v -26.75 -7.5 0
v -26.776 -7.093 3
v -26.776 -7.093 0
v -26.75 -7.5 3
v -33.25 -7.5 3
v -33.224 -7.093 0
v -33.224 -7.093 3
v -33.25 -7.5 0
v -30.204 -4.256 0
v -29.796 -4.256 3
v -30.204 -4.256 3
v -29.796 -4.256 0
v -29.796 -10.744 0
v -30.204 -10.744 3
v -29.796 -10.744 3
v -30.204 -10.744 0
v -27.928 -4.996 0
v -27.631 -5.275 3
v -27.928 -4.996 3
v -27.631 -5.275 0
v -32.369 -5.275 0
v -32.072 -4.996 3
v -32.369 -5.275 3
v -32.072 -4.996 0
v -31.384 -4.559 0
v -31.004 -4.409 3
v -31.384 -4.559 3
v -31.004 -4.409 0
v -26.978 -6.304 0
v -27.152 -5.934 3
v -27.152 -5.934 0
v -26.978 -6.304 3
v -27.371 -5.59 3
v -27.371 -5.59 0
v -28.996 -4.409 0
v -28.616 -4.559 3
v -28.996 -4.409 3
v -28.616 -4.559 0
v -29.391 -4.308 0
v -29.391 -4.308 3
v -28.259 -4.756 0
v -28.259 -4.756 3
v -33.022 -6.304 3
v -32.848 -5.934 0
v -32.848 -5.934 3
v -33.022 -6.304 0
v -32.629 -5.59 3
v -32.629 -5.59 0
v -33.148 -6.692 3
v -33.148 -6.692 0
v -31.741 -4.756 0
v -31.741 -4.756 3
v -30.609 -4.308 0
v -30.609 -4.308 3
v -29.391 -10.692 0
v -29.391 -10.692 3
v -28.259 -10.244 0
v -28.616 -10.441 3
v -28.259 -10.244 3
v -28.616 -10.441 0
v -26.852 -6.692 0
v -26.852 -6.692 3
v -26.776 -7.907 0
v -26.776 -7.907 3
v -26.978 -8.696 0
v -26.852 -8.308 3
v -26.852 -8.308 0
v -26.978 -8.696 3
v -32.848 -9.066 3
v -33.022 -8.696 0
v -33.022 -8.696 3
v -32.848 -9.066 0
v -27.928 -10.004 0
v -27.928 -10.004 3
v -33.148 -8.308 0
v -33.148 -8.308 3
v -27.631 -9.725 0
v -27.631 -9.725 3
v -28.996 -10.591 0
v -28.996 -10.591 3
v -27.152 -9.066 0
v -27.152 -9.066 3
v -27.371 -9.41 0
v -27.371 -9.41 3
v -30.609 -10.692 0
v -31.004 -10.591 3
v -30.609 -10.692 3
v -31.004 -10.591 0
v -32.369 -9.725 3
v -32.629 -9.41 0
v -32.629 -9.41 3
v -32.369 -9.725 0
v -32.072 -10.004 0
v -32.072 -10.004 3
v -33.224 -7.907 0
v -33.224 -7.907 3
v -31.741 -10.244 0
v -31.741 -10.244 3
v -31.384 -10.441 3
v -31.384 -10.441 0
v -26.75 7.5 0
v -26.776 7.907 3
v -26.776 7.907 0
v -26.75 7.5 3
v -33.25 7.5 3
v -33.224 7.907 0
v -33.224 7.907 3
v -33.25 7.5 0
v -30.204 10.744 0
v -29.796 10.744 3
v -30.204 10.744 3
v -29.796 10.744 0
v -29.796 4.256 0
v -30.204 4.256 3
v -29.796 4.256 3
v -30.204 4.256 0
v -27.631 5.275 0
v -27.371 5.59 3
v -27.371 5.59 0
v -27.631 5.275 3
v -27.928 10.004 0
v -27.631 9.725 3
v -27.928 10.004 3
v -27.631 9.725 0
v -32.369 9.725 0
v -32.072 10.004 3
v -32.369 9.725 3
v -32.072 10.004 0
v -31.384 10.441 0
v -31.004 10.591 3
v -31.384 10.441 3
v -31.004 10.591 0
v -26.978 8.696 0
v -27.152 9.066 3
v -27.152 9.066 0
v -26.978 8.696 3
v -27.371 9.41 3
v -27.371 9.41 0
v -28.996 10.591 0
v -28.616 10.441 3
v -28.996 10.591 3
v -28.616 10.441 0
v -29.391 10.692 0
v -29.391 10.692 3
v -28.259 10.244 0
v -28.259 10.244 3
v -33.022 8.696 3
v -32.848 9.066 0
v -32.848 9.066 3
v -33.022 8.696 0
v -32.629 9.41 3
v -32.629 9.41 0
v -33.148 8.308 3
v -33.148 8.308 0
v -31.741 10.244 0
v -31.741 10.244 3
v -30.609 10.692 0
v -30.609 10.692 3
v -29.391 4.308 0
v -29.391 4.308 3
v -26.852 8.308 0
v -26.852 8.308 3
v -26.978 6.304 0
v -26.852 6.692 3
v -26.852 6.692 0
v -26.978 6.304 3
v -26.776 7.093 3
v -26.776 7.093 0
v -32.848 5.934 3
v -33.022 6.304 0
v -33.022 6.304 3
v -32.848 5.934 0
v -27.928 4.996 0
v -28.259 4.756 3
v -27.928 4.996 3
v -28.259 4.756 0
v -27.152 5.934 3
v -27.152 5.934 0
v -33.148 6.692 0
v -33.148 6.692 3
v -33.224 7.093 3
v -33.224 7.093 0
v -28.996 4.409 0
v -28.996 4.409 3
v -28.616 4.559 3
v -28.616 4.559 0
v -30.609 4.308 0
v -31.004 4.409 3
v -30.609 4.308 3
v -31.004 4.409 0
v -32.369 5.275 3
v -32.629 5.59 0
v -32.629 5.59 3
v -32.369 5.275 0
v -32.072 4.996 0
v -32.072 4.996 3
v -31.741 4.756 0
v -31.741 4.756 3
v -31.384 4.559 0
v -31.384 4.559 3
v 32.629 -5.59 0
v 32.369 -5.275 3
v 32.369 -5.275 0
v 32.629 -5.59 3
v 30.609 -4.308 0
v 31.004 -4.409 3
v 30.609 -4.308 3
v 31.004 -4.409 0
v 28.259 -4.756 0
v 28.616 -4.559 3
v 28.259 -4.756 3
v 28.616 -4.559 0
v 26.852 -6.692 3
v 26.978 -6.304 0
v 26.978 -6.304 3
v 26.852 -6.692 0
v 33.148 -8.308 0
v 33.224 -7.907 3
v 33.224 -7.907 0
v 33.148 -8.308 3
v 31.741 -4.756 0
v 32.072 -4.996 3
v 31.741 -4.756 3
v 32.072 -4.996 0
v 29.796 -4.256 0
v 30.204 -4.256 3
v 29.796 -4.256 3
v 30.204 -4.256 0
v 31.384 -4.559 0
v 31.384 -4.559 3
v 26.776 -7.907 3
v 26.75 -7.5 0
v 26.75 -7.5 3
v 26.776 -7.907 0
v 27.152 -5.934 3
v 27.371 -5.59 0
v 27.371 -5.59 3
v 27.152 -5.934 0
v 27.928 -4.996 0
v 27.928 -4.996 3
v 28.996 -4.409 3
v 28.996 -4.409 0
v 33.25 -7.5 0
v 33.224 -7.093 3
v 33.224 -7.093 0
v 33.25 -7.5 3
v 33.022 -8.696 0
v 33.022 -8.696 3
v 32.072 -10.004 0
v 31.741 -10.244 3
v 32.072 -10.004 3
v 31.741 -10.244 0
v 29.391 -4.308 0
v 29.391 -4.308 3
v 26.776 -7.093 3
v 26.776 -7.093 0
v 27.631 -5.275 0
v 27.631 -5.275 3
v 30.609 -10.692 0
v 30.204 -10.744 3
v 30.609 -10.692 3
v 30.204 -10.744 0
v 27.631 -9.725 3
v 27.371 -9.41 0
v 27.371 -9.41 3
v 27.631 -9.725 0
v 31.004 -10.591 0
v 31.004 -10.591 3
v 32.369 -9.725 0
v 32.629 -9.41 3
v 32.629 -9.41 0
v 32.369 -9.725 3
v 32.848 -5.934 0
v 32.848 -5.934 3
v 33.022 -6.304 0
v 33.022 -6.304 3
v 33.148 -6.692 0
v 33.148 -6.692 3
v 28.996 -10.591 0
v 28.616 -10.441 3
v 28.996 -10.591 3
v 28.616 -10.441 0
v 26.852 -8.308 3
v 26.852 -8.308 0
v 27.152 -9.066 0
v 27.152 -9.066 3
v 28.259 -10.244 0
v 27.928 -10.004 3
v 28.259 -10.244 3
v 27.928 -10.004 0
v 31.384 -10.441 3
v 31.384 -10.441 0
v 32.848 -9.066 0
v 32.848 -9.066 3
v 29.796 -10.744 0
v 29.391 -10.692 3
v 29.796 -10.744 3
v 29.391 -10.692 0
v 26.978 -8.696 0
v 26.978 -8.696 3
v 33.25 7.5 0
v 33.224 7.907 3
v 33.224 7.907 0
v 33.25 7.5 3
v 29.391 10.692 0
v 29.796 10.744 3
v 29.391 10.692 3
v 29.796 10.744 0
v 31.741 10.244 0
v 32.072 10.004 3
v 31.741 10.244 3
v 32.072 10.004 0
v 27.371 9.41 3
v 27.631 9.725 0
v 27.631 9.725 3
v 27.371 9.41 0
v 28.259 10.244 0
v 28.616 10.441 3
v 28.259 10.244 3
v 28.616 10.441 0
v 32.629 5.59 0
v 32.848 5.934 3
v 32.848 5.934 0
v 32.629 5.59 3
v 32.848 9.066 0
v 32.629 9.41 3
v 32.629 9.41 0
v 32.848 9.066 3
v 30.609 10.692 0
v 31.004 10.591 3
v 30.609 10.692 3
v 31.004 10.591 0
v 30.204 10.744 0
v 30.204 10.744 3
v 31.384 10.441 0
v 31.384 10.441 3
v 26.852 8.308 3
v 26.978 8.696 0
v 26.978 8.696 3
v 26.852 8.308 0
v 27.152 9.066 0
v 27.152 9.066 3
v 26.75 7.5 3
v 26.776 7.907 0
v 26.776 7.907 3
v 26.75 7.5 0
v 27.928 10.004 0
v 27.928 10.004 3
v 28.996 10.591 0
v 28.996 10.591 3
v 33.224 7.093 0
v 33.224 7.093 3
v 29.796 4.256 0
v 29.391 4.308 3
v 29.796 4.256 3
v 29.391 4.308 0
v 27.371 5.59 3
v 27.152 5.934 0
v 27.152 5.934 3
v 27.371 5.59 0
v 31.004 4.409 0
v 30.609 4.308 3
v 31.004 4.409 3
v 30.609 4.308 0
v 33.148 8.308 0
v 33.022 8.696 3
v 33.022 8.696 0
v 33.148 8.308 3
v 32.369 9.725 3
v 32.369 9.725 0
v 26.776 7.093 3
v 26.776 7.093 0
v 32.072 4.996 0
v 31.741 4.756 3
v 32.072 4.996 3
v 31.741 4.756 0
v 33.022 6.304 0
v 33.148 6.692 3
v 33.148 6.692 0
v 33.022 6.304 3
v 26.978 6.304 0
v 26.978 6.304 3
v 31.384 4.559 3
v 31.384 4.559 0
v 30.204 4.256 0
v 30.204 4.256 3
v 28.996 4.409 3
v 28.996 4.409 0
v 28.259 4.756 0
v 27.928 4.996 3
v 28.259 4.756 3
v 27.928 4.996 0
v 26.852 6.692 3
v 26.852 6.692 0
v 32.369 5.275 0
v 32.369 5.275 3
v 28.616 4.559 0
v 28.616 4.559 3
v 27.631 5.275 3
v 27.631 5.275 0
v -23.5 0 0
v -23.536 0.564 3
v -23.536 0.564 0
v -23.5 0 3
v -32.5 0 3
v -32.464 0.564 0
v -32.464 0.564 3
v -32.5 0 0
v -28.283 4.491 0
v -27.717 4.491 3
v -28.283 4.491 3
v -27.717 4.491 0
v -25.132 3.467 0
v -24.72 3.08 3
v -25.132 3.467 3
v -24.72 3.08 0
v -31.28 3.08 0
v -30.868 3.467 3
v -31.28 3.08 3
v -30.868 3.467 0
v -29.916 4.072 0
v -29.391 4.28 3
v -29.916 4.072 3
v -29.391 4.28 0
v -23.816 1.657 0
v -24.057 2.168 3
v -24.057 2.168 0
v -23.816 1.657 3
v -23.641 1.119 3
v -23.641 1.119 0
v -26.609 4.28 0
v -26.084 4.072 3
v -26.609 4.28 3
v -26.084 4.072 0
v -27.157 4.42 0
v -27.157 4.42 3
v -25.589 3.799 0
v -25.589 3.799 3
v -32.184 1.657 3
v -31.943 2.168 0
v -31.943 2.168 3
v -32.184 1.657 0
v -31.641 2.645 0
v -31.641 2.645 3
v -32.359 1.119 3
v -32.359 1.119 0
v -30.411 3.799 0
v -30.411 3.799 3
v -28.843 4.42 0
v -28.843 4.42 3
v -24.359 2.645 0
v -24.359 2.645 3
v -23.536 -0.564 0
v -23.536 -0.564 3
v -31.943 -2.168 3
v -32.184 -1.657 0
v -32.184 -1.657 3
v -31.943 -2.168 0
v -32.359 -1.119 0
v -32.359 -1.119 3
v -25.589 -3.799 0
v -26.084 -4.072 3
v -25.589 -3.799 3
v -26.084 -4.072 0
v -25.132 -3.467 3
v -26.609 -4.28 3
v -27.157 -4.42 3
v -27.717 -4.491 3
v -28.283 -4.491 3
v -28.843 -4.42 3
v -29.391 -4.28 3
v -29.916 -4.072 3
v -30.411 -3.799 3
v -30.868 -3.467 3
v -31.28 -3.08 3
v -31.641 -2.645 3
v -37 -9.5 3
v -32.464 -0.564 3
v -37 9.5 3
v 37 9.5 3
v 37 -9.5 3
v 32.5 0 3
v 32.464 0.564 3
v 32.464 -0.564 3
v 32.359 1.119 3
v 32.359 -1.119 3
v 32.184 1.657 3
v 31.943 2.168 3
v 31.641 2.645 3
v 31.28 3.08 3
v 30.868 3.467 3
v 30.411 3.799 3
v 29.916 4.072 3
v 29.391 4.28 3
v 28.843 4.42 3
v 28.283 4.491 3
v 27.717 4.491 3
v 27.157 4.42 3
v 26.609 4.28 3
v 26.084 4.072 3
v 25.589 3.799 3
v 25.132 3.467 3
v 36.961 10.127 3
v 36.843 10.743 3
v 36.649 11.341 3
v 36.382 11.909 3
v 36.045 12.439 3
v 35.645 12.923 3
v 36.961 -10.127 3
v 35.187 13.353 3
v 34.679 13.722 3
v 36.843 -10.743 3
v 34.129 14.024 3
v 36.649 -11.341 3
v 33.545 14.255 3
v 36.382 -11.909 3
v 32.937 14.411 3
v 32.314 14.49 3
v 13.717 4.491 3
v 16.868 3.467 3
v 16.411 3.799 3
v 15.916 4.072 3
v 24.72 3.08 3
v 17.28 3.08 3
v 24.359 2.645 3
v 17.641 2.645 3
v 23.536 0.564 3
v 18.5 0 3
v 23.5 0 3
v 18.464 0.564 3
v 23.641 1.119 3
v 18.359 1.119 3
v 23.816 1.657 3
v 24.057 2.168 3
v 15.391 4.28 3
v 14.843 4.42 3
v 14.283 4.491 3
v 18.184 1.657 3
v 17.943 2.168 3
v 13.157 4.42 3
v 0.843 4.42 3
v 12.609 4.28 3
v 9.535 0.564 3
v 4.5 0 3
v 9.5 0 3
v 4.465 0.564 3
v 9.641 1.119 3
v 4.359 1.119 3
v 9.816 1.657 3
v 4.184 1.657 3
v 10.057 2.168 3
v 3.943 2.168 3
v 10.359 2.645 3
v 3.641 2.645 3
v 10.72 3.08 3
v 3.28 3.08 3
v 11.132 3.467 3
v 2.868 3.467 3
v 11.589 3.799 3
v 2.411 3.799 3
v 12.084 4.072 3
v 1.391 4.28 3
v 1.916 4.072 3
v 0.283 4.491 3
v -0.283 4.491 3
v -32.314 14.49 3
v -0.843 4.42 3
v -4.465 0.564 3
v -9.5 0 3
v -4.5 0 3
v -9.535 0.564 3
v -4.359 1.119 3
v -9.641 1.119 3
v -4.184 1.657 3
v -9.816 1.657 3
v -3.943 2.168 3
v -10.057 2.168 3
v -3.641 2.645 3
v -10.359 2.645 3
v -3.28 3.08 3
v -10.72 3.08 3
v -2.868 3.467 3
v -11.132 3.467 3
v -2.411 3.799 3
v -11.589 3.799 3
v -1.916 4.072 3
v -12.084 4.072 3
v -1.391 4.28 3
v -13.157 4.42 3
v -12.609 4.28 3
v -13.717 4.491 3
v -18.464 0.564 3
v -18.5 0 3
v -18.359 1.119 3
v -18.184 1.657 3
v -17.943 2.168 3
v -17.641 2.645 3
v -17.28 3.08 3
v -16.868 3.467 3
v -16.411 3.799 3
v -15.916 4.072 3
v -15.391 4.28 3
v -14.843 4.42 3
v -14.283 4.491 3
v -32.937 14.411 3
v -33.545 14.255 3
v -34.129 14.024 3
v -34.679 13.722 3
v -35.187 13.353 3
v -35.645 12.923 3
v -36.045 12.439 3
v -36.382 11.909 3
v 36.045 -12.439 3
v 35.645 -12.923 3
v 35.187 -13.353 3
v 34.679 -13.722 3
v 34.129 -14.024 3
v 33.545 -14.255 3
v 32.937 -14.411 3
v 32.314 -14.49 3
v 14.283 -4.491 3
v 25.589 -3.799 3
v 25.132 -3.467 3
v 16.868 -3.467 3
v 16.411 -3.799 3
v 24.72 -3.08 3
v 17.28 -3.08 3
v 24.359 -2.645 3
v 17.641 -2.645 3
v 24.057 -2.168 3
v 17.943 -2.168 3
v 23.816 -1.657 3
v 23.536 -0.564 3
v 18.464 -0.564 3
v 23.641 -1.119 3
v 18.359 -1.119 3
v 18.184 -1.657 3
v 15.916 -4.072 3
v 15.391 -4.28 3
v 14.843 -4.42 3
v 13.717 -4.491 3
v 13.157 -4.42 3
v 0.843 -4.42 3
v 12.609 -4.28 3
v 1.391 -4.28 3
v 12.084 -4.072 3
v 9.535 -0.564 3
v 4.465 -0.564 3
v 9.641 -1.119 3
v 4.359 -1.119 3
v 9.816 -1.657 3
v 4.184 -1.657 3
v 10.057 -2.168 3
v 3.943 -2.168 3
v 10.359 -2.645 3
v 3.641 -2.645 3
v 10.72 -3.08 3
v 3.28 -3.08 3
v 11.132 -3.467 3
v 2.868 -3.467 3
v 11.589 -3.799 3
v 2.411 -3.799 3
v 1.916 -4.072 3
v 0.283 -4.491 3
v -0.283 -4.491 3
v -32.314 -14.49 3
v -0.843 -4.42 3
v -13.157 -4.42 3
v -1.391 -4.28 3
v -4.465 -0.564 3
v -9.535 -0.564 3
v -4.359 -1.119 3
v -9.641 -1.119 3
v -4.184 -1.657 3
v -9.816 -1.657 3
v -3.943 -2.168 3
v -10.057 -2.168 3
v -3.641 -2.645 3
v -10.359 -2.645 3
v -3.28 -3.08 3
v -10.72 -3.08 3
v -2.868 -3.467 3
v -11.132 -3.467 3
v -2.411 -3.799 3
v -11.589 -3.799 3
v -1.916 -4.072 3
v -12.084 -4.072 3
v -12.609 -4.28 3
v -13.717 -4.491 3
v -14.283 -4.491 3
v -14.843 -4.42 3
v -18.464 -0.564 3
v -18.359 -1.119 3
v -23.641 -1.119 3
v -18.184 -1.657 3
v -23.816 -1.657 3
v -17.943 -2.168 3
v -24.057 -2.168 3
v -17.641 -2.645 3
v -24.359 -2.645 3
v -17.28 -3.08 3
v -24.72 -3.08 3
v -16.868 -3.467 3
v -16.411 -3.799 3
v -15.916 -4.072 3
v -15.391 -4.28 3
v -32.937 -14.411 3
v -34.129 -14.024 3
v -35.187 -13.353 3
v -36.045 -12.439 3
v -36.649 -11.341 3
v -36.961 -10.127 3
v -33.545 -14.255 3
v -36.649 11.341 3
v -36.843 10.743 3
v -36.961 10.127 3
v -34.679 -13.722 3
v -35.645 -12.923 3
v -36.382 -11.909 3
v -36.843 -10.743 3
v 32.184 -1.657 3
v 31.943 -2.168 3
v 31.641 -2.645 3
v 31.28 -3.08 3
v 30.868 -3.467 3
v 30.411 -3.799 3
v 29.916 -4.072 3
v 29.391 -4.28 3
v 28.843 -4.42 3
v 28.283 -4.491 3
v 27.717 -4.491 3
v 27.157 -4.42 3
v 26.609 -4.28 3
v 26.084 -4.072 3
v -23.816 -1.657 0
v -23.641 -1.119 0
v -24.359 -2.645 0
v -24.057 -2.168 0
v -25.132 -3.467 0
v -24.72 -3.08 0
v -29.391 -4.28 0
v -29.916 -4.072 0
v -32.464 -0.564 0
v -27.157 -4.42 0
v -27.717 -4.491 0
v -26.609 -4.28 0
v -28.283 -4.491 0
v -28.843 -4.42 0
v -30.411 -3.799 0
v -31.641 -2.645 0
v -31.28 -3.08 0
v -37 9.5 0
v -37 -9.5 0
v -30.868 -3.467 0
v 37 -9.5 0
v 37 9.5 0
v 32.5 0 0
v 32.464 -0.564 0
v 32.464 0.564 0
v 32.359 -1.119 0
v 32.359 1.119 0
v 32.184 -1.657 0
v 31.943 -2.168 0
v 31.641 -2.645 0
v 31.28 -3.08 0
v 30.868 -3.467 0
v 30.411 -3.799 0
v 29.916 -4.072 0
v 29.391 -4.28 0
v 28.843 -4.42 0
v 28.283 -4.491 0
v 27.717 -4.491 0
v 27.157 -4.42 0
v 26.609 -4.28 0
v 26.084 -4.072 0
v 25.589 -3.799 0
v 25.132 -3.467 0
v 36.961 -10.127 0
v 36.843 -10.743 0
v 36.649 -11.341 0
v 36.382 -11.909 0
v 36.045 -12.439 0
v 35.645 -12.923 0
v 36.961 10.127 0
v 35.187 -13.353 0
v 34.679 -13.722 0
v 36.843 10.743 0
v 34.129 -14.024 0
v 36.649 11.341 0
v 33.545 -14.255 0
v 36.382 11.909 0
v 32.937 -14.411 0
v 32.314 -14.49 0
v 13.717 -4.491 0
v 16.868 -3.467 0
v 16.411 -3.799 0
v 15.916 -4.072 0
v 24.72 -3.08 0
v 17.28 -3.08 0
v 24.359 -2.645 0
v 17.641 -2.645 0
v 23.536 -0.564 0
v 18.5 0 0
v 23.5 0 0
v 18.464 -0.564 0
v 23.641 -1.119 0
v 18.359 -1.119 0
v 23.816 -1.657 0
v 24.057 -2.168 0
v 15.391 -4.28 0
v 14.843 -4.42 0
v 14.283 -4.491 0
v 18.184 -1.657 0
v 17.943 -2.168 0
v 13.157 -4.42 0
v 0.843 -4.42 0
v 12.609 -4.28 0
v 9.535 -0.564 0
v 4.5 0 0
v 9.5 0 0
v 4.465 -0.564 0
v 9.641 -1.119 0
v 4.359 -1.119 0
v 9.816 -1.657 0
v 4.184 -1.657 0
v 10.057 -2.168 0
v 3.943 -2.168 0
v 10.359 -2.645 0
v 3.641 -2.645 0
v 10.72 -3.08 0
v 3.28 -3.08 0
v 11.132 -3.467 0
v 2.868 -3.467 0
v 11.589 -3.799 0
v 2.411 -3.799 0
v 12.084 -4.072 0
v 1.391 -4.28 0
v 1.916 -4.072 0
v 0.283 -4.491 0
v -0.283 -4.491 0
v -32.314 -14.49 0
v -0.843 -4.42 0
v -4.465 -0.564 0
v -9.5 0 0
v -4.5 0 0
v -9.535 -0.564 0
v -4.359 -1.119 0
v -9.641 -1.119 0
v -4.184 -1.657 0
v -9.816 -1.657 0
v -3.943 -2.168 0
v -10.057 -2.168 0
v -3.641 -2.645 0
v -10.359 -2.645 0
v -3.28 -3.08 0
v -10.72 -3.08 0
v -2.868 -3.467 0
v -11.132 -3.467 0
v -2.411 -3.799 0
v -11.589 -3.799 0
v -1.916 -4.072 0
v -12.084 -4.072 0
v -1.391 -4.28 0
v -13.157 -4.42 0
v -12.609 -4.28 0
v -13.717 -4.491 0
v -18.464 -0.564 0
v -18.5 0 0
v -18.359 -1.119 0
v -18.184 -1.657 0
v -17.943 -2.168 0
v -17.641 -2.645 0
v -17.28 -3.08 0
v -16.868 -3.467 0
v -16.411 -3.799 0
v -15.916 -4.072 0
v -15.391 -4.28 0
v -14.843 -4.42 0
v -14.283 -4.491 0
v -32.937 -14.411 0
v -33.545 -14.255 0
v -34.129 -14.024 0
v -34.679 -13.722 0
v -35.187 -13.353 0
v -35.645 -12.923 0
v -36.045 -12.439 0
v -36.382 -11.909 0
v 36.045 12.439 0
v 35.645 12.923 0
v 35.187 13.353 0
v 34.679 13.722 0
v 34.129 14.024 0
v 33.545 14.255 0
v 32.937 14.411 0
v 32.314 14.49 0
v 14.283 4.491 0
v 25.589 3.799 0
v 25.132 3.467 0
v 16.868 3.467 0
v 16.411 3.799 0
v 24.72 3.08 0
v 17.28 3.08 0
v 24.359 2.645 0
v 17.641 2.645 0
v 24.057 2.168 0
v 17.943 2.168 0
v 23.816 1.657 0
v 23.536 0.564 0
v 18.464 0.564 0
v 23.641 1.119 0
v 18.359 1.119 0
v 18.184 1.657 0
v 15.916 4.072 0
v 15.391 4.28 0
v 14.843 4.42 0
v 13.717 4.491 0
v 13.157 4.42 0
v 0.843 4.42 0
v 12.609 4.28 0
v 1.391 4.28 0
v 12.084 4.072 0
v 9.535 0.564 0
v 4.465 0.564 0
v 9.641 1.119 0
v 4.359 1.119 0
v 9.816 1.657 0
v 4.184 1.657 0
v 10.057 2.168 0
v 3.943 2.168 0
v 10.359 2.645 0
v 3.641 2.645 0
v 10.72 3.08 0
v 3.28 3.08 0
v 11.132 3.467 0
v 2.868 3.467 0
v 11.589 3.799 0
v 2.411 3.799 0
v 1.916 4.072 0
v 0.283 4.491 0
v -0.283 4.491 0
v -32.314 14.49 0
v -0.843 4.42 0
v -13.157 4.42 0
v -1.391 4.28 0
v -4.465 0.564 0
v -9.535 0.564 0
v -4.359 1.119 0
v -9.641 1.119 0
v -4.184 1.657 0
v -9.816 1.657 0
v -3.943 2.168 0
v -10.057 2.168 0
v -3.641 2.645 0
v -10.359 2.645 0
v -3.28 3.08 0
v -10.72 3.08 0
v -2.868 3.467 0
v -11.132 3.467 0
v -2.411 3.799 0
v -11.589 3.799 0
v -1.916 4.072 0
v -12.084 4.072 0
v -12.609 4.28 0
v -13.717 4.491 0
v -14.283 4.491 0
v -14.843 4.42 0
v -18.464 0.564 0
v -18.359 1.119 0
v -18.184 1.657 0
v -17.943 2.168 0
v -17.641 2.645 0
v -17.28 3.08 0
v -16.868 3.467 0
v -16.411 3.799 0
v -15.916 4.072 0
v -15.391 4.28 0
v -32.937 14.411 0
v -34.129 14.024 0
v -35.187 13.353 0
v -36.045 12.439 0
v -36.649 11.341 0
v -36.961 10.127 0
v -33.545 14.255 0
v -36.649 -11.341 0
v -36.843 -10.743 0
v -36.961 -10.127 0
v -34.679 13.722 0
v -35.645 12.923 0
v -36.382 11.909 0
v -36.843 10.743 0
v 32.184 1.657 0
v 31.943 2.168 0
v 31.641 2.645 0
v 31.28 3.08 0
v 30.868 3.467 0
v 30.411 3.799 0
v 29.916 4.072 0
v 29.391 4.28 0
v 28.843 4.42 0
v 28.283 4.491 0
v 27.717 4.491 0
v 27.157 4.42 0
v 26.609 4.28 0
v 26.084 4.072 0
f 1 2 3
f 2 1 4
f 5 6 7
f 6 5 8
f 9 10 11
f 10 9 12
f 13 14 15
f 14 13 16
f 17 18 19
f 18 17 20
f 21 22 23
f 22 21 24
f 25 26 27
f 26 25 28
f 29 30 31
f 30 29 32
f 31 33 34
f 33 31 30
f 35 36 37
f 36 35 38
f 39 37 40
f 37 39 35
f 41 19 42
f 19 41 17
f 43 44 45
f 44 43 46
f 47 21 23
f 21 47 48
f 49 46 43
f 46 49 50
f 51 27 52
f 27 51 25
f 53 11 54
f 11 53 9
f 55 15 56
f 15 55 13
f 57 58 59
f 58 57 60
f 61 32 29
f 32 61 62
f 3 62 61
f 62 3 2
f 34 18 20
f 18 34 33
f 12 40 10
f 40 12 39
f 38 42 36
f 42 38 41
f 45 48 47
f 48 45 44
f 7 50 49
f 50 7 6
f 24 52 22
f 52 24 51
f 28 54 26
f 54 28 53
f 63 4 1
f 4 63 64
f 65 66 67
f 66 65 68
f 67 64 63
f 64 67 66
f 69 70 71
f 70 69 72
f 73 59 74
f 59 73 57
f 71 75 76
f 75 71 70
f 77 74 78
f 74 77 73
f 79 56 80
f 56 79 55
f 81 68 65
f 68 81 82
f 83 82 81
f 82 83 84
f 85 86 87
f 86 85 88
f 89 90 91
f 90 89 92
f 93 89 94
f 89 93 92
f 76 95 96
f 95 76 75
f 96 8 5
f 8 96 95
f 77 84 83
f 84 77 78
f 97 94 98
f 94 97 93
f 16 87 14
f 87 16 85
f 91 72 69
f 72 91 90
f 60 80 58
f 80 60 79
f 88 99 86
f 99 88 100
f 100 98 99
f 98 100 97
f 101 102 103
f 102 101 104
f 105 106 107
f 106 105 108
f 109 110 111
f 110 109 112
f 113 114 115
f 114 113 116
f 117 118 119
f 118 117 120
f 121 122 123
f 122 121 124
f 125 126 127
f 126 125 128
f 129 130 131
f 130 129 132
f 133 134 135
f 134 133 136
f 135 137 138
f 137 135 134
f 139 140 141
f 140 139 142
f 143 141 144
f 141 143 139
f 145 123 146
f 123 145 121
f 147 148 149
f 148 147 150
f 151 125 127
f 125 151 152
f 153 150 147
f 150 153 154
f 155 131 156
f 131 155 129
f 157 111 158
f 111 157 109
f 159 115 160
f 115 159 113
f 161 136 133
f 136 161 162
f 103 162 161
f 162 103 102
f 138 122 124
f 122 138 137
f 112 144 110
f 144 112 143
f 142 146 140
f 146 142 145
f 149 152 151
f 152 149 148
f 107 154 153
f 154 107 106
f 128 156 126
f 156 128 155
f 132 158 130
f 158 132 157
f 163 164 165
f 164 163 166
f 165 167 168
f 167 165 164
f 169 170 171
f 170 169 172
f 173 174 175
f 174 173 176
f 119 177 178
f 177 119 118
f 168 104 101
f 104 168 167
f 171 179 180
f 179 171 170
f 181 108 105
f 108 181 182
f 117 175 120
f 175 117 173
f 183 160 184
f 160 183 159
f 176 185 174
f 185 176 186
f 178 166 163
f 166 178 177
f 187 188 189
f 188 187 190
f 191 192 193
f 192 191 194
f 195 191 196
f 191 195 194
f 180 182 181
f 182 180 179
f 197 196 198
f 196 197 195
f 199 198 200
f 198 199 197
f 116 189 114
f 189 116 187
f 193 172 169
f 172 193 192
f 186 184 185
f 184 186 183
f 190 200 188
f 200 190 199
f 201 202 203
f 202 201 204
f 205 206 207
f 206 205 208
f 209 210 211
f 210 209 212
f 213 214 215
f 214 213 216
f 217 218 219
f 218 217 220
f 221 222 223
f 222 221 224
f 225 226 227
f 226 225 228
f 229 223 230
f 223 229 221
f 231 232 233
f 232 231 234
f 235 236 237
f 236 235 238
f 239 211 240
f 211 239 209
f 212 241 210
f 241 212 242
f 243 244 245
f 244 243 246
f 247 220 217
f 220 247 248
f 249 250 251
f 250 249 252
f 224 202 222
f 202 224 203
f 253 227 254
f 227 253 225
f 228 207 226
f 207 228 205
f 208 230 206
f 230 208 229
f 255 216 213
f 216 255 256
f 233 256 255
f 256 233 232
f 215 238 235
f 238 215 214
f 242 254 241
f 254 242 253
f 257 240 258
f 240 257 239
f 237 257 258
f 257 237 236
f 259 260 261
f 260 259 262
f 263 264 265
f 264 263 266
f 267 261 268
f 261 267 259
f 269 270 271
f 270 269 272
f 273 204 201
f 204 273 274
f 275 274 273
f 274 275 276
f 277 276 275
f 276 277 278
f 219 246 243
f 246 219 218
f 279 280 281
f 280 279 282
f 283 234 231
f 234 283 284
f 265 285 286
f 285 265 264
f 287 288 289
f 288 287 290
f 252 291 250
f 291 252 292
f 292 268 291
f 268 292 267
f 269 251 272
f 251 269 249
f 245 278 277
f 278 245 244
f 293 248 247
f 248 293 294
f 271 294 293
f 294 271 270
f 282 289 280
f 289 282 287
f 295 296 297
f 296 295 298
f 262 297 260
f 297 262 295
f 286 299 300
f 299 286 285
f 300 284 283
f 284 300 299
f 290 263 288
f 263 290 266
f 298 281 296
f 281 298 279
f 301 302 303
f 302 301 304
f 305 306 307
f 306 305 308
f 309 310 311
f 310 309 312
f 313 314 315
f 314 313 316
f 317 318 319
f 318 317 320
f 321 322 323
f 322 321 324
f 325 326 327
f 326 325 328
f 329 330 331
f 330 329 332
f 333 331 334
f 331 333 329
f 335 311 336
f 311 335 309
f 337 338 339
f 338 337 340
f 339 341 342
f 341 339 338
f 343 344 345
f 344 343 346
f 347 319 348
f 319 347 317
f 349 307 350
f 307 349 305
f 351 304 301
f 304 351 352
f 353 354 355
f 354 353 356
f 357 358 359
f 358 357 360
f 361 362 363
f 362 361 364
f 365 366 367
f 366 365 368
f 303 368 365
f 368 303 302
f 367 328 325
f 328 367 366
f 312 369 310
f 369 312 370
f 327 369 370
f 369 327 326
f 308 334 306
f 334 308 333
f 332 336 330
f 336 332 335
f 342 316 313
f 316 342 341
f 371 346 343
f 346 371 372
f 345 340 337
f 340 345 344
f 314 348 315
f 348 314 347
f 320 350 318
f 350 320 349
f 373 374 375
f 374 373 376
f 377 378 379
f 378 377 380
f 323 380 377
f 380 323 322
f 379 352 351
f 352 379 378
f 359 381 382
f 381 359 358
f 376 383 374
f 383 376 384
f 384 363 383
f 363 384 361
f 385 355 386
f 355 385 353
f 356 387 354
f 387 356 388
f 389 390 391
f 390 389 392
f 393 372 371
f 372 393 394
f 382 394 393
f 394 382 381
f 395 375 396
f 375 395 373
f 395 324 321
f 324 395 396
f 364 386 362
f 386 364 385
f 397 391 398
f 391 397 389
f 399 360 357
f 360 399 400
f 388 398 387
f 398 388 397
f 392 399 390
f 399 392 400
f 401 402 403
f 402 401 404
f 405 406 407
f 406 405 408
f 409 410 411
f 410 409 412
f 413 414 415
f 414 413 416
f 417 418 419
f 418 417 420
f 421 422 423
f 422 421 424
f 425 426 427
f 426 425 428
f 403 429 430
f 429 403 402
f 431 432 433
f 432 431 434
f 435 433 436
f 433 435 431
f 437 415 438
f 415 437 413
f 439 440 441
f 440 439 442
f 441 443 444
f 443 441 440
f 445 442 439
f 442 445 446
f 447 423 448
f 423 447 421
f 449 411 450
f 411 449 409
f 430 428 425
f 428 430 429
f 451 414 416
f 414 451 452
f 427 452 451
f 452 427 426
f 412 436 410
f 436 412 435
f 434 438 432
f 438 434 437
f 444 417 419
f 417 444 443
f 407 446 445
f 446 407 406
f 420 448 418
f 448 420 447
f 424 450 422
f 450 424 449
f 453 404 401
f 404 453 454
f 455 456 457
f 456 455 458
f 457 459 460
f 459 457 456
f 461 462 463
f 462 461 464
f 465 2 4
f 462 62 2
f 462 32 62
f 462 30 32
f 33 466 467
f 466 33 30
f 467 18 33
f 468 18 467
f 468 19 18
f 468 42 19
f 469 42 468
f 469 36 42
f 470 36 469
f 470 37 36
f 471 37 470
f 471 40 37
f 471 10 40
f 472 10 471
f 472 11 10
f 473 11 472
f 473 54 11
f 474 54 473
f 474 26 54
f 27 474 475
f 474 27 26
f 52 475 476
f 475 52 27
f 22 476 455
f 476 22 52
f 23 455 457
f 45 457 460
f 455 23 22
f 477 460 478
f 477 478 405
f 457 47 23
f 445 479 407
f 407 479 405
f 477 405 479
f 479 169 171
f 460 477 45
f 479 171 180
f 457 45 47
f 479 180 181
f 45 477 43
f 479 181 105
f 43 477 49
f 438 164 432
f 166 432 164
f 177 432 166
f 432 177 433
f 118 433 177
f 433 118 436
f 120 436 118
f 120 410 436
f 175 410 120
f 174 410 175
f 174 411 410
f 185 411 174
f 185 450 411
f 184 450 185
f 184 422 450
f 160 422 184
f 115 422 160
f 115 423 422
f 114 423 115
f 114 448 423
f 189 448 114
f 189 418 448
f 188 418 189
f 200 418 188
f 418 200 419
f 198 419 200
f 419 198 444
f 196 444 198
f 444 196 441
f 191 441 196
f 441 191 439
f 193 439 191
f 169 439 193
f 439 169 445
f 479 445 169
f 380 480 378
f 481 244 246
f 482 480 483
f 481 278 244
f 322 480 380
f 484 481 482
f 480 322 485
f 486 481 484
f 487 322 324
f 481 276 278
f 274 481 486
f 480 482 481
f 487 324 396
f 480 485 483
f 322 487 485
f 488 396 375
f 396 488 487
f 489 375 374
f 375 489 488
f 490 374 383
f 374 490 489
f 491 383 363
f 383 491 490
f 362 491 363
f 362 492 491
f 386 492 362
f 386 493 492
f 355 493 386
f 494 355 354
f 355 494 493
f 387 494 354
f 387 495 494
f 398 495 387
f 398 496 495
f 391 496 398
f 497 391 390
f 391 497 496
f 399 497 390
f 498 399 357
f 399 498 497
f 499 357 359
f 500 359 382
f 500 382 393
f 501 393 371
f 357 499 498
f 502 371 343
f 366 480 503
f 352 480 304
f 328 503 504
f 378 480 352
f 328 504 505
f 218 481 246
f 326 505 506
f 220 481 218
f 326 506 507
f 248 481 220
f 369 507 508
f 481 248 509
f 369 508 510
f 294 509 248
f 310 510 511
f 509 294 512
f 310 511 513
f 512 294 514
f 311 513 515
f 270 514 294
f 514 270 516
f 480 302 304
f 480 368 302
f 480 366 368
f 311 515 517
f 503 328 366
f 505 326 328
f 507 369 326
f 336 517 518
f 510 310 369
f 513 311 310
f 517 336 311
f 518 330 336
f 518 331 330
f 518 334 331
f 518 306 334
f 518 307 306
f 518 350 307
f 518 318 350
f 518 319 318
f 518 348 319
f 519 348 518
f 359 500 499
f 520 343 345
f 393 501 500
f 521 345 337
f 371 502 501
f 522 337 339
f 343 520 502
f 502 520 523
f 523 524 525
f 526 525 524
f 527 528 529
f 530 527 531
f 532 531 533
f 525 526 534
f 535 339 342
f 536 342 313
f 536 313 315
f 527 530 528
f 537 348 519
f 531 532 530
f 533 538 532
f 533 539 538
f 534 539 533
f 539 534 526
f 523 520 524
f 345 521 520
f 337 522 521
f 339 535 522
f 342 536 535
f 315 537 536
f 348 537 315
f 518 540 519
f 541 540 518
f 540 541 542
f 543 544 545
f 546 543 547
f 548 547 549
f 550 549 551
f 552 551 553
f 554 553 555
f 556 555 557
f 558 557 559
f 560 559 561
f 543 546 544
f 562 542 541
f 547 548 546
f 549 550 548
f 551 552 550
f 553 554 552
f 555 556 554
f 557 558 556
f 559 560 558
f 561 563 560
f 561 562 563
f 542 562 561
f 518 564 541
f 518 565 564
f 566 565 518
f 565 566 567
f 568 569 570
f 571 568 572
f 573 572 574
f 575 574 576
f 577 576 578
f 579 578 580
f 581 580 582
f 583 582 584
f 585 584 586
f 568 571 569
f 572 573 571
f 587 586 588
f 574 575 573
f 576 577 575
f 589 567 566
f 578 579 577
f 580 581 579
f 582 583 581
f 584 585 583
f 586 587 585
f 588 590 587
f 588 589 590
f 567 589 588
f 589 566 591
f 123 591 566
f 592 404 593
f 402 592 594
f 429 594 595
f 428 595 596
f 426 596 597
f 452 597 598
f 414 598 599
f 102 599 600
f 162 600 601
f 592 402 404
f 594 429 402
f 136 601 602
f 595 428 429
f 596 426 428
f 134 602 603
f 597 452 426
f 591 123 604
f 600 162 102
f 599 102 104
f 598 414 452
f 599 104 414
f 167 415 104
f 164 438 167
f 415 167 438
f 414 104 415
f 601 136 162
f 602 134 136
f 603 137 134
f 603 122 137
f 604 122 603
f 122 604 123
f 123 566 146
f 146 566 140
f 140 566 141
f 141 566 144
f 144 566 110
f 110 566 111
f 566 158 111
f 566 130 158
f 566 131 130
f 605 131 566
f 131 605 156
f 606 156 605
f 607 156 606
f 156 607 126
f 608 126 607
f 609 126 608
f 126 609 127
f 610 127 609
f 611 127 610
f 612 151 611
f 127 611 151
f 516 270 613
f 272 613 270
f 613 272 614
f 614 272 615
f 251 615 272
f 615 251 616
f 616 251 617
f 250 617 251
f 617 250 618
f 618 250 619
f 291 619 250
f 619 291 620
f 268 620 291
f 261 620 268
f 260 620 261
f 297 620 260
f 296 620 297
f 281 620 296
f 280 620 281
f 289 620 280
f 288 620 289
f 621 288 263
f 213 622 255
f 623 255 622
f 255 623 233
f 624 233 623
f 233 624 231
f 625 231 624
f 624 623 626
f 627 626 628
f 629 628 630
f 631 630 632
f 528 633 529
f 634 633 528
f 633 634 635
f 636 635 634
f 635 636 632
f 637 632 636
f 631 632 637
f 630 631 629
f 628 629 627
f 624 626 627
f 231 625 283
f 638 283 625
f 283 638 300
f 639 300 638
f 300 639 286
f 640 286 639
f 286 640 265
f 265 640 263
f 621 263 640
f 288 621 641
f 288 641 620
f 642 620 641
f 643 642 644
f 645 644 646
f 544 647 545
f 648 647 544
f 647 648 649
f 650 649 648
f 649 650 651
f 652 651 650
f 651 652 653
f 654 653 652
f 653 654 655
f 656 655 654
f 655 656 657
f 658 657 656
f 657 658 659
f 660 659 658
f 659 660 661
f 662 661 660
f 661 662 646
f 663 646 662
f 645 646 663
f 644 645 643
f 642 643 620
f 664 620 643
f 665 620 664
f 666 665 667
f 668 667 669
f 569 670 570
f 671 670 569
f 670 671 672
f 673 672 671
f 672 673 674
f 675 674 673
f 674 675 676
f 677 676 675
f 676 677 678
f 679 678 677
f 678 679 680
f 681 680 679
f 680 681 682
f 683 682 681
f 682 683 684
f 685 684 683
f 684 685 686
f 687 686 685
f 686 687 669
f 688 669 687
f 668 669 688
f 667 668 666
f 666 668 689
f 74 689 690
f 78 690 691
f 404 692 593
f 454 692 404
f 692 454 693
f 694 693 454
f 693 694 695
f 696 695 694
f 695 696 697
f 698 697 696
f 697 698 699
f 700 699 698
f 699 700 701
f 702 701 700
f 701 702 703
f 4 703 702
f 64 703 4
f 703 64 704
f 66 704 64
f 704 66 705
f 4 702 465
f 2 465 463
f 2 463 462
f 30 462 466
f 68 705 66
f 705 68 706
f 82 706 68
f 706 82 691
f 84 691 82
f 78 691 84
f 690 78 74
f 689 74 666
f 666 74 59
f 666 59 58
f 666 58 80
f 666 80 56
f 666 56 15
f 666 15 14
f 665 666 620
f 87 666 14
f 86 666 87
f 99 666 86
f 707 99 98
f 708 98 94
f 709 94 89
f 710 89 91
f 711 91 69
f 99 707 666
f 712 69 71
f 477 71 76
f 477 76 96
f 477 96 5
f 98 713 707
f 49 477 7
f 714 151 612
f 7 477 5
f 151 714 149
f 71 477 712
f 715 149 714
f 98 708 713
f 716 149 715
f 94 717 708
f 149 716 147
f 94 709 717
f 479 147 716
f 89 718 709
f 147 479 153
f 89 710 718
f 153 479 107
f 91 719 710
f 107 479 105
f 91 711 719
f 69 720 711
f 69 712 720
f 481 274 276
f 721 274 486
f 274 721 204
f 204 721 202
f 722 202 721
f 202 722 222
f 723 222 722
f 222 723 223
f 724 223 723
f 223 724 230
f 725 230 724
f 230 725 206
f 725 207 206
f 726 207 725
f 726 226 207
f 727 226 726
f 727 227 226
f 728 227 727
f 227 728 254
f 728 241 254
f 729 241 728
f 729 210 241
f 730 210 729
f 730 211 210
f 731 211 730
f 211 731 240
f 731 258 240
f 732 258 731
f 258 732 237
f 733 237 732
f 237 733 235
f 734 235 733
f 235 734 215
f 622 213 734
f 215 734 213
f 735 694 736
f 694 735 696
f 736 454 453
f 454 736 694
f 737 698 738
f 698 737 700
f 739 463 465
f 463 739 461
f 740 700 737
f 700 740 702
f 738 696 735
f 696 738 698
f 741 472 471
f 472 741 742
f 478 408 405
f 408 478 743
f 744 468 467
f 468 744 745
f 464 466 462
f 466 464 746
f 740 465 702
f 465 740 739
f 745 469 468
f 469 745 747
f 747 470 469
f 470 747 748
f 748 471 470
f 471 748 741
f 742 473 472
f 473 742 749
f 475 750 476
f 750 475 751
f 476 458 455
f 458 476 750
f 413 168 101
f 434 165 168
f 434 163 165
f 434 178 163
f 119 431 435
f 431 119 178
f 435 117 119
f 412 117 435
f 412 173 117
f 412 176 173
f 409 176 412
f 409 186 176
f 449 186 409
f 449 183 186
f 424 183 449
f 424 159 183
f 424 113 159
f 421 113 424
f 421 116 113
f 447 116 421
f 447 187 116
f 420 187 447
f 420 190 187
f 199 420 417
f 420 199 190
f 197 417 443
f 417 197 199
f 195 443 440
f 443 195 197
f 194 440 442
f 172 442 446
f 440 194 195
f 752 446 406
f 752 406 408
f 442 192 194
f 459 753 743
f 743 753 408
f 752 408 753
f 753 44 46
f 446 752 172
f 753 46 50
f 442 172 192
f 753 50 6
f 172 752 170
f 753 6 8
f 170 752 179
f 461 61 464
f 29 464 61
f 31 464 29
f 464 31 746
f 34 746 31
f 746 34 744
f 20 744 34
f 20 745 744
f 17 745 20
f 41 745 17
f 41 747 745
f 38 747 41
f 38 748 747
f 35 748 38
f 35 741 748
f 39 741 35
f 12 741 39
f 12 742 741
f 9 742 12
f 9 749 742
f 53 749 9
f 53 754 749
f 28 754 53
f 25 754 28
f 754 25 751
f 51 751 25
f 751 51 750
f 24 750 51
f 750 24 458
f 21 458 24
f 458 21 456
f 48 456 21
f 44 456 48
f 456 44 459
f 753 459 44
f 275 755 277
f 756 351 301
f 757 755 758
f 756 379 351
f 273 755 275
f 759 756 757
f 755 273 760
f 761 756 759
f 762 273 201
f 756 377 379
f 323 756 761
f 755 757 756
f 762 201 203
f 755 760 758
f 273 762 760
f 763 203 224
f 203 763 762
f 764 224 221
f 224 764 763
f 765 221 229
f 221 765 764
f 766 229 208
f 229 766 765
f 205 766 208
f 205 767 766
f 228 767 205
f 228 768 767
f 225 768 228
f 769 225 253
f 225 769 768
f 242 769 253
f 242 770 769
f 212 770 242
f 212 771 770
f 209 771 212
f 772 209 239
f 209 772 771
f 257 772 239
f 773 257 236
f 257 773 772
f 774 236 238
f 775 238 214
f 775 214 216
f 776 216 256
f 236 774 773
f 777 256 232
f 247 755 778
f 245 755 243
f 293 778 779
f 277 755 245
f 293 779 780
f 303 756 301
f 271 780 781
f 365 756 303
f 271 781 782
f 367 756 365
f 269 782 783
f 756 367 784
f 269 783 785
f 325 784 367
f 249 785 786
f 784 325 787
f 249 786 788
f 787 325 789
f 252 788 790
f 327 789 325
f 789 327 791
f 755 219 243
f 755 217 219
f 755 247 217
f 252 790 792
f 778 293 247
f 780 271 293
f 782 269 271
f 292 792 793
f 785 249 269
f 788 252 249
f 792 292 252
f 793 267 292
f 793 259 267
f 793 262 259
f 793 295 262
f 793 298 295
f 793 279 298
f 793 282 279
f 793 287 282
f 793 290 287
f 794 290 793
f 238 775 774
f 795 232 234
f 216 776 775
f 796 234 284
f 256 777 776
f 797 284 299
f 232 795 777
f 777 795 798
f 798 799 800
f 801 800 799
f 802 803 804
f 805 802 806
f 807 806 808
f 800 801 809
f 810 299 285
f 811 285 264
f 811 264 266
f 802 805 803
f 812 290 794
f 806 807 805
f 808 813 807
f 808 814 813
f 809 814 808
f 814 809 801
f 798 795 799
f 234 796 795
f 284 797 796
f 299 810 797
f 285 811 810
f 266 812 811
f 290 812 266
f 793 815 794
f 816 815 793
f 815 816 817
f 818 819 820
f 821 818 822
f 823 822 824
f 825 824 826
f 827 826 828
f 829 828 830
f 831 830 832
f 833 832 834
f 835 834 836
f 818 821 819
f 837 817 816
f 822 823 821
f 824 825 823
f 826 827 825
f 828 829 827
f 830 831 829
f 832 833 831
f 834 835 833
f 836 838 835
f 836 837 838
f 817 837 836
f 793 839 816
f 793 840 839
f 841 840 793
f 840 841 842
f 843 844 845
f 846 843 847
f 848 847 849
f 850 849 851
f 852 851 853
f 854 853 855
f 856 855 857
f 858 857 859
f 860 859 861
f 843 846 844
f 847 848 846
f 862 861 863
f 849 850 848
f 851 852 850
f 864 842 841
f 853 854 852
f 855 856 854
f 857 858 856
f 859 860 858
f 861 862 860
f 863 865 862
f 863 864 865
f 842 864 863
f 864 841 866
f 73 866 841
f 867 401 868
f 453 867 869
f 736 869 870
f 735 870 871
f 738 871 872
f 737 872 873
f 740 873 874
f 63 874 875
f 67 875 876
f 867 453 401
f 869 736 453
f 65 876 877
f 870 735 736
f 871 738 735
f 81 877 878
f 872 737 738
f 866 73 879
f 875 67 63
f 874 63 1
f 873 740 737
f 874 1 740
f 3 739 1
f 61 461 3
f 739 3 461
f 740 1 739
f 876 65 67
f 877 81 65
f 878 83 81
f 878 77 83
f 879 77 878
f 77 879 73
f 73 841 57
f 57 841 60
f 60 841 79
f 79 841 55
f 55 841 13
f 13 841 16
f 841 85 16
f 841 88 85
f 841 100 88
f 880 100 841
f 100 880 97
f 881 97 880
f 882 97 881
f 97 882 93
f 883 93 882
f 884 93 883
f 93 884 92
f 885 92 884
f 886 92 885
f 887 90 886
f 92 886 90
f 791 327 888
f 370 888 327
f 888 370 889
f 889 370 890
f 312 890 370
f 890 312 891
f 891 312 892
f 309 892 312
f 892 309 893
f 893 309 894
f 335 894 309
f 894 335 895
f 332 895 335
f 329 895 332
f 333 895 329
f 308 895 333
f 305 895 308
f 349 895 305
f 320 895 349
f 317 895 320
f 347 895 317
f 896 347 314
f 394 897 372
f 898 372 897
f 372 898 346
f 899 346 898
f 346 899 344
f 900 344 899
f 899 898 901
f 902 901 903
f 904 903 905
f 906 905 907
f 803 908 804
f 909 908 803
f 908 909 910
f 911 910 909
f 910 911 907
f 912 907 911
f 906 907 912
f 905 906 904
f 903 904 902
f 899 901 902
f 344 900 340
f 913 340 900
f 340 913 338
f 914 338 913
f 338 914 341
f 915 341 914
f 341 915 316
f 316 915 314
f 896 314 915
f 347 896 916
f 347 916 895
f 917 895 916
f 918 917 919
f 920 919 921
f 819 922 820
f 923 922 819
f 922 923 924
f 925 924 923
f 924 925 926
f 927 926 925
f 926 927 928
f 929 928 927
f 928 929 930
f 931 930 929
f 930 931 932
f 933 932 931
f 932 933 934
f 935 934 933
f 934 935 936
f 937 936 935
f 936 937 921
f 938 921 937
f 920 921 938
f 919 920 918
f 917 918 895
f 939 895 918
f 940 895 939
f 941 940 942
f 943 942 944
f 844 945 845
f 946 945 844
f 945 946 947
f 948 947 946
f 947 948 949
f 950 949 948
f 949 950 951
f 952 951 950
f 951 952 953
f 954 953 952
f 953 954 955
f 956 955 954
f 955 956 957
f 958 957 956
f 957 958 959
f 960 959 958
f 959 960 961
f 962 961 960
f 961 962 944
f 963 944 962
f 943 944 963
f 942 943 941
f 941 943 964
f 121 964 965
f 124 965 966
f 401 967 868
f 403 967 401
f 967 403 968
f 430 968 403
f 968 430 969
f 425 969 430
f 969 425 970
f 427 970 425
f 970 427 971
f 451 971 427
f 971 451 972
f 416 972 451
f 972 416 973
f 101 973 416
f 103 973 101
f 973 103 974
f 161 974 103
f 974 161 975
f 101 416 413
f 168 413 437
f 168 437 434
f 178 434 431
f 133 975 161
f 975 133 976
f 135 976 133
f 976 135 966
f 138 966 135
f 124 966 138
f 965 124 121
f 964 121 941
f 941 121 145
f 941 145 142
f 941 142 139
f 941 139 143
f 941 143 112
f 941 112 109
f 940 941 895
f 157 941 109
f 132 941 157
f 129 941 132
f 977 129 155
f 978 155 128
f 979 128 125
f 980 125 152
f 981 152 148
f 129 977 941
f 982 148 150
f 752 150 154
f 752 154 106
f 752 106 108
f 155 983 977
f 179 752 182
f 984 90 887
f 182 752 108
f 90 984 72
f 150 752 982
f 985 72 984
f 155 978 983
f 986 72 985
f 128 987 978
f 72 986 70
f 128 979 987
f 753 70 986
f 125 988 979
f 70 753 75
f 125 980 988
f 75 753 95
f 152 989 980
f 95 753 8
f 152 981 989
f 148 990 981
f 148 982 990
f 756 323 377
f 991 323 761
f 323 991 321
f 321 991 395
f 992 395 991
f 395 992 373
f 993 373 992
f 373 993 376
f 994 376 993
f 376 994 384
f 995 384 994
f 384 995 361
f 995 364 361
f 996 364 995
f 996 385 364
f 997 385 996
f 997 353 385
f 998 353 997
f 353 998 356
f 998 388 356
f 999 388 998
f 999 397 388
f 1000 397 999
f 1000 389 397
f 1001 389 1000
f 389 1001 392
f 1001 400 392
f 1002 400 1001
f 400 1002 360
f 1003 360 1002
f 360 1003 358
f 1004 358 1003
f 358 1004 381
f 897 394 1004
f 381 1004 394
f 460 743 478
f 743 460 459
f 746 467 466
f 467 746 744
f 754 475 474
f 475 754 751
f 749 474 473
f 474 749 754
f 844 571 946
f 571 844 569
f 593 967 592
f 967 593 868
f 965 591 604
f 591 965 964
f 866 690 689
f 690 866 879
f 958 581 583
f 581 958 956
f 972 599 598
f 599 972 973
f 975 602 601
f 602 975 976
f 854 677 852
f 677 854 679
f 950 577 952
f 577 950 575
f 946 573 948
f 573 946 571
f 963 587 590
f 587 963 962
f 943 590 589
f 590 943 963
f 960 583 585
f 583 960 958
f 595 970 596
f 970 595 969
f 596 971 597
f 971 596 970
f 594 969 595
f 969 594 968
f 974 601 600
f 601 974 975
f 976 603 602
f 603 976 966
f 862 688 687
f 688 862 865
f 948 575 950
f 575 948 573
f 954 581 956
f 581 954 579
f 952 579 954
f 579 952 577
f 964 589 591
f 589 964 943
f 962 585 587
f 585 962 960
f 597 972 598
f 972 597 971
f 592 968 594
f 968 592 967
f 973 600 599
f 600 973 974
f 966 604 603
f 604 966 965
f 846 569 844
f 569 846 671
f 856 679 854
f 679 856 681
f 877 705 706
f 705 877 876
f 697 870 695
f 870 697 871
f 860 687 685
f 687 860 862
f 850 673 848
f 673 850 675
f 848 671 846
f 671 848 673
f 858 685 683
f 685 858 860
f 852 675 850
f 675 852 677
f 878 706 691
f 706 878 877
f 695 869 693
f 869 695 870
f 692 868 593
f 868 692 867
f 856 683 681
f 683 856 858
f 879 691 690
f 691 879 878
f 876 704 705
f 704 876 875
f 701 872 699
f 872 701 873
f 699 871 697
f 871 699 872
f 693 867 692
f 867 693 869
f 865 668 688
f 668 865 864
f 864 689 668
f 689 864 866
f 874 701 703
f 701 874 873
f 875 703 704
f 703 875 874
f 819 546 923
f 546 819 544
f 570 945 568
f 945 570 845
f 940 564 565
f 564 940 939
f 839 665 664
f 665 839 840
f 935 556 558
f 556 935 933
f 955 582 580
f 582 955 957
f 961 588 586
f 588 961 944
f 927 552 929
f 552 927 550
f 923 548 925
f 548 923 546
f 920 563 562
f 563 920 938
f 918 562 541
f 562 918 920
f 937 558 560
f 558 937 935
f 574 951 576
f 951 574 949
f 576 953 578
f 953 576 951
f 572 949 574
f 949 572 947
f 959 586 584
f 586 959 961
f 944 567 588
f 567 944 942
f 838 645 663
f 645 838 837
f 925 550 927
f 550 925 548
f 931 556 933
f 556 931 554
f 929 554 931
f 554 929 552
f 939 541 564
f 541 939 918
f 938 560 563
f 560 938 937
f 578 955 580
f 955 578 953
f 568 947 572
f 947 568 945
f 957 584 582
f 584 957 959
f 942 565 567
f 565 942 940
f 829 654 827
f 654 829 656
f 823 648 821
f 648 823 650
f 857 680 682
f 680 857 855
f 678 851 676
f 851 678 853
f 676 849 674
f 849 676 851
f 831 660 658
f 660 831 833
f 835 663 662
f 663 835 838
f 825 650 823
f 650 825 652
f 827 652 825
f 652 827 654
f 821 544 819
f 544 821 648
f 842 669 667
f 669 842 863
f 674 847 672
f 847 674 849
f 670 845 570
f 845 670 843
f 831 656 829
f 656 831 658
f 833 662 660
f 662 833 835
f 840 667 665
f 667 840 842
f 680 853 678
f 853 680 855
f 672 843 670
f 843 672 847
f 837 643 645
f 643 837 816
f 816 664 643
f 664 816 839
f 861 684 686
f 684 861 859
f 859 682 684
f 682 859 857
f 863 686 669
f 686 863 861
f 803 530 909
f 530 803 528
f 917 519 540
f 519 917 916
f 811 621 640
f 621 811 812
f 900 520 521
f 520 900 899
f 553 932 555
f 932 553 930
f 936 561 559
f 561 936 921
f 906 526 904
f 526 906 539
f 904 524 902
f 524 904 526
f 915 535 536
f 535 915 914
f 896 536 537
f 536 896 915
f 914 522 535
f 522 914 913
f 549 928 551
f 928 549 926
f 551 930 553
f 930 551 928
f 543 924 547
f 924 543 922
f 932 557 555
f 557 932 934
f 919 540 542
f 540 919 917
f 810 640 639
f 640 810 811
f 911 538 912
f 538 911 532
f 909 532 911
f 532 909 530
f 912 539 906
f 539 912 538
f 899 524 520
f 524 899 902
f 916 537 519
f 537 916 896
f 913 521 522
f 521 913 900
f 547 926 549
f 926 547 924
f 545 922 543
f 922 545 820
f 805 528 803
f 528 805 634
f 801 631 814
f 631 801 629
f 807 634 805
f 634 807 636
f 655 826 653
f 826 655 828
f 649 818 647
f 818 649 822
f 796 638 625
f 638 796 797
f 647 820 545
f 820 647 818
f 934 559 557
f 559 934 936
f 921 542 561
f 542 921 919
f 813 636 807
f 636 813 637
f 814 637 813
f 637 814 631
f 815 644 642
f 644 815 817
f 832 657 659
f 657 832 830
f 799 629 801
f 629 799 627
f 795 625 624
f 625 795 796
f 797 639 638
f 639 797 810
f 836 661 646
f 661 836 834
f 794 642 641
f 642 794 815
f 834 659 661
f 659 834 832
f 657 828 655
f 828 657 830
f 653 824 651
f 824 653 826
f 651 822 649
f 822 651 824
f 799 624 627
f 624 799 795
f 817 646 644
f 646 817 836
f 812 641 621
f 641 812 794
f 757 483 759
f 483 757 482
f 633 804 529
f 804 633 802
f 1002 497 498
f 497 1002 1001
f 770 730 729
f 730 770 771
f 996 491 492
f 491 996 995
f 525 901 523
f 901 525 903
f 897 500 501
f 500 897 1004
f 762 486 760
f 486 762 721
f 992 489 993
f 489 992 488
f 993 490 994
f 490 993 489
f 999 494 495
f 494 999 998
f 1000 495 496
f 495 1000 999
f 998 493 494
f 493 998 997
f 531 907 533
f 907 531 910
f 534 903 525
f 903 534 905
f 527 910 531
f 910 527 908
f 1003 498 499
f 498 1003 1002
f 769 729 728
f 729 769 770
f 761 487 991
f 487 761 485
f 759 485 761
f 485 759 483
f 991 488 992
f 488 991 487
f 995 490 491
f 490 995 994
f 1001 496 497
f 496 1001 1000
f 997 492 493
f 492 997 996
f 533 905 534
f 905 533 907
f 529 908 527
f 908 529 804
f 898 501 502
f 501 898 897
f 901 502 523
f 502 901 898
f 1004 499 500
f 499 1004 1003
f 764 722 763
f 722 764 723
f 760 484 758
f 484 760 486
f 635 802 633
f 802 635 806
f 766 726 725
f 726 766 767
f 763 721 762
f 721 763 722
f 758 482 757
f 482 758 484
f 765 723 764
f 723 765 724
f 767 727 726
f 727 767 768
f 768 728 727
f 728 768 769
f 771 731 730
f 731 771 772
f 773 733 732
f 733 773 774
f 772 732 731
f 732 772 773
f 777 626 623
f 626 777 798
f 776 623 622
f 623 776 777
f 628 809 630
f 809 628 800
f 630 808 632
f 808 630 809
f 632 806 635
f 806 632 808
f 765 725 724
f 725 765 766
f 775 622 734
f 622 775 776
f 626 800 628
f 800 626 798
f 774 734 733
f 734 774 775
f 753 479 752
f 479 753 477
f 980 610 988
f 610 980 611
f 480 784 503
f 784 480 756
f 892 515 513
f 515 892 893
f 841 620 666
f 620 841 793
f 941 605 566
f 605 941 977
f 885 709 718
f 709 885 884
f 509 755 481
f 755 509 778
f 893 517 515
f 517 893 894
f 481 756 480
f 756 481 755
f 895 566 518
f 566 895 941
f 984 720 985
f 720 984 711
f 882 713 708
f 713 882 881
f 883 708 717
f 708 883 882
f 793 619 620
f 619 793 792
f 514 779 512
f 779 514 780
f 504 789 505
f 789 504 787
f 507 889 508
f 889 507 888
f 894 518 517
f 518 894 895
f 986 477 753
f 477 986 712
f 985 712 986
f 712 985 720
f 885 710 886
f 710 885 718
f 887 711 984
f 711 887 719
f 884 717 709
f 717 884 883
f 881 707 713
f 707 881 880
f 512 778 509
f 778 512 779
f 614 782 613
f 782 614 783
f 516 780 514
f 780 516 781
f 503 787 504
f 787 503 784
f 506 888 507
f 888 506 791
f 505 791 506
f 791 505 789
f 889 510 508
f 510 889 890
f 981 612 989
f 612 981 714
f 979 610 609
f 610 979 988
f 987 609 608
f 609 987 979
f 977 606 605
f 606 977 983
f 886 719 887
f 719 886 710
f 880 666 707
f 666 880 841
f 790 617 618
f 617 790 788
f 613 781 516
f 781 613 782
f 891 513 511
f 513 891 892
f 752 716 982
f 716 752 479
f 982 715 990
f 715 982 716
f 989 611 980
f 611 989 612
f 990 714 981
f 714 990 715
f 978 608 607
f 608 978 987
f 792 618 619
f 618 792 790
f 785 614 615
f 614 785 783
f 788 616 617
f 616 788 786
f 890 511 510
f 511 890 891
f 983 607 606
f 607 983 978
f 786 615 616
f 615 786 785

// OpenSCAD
$fn = 50;


difference() {
	union() {
		hull() {
			translate(v = [-32.0000000000, 9.5000000000, 0]) {
				cylinder(h = 3, r = 5);
			}
			translate(v = [32.0000000000, 9.5000000000, 0]) {
				cylinder(h = 3, r = 5);
			}
			translate(v = [-32.0000000000, -9.5000000000, 0]) {
				cylinder(h = 3, r = 5);
			}
			translate(v = [32.0000000000, -9.5000000000, 0]) {
				cylinder(h = 3, r = 5);
			}
		}
	}
	union() {
		#translate(v = [-30.0000000000, -7.5000000000, -100.0000000000]) {
			cylinder(h = 200, r = 3.2500000000);
		}
		#translate(v = [-30.0000000000, 7.5000000000, -100.0000000000]) {
			cylinder(h = 200, r = 3.2500000000);
		}
		#translate(v = [30.0000000000, -7.5000000000, -100.0000000000]) {
			cylinder(h = 200, r = 3.2500000000);
		}
		#translate(v = [30.0000000000, 7.5000000000, -100.0000000000]) {
			cylinder(h = 200, r = 3.2500000000);
		}
		#translate(v = [-28.0000000000, 0, 0]) {
			cylinder(h = 3, r = 4.5000000000);
		}
		#translate(v = [-14.0000000000, 0, 0]) {
			cylinder(h = 3, r = 4.5000000000);
		}
		#cylinder(h = 3, r = 4.5000000000);
		#translate(v = [14.0000000000, 0, 0]) {
			cylinder(h = 3, r = 4.5000000000);
		}
		#translate(v = [28.0000000000, 0, 0]) {
			cylinder(h = 3, r = 4.5000000000);
		}
	}
}
